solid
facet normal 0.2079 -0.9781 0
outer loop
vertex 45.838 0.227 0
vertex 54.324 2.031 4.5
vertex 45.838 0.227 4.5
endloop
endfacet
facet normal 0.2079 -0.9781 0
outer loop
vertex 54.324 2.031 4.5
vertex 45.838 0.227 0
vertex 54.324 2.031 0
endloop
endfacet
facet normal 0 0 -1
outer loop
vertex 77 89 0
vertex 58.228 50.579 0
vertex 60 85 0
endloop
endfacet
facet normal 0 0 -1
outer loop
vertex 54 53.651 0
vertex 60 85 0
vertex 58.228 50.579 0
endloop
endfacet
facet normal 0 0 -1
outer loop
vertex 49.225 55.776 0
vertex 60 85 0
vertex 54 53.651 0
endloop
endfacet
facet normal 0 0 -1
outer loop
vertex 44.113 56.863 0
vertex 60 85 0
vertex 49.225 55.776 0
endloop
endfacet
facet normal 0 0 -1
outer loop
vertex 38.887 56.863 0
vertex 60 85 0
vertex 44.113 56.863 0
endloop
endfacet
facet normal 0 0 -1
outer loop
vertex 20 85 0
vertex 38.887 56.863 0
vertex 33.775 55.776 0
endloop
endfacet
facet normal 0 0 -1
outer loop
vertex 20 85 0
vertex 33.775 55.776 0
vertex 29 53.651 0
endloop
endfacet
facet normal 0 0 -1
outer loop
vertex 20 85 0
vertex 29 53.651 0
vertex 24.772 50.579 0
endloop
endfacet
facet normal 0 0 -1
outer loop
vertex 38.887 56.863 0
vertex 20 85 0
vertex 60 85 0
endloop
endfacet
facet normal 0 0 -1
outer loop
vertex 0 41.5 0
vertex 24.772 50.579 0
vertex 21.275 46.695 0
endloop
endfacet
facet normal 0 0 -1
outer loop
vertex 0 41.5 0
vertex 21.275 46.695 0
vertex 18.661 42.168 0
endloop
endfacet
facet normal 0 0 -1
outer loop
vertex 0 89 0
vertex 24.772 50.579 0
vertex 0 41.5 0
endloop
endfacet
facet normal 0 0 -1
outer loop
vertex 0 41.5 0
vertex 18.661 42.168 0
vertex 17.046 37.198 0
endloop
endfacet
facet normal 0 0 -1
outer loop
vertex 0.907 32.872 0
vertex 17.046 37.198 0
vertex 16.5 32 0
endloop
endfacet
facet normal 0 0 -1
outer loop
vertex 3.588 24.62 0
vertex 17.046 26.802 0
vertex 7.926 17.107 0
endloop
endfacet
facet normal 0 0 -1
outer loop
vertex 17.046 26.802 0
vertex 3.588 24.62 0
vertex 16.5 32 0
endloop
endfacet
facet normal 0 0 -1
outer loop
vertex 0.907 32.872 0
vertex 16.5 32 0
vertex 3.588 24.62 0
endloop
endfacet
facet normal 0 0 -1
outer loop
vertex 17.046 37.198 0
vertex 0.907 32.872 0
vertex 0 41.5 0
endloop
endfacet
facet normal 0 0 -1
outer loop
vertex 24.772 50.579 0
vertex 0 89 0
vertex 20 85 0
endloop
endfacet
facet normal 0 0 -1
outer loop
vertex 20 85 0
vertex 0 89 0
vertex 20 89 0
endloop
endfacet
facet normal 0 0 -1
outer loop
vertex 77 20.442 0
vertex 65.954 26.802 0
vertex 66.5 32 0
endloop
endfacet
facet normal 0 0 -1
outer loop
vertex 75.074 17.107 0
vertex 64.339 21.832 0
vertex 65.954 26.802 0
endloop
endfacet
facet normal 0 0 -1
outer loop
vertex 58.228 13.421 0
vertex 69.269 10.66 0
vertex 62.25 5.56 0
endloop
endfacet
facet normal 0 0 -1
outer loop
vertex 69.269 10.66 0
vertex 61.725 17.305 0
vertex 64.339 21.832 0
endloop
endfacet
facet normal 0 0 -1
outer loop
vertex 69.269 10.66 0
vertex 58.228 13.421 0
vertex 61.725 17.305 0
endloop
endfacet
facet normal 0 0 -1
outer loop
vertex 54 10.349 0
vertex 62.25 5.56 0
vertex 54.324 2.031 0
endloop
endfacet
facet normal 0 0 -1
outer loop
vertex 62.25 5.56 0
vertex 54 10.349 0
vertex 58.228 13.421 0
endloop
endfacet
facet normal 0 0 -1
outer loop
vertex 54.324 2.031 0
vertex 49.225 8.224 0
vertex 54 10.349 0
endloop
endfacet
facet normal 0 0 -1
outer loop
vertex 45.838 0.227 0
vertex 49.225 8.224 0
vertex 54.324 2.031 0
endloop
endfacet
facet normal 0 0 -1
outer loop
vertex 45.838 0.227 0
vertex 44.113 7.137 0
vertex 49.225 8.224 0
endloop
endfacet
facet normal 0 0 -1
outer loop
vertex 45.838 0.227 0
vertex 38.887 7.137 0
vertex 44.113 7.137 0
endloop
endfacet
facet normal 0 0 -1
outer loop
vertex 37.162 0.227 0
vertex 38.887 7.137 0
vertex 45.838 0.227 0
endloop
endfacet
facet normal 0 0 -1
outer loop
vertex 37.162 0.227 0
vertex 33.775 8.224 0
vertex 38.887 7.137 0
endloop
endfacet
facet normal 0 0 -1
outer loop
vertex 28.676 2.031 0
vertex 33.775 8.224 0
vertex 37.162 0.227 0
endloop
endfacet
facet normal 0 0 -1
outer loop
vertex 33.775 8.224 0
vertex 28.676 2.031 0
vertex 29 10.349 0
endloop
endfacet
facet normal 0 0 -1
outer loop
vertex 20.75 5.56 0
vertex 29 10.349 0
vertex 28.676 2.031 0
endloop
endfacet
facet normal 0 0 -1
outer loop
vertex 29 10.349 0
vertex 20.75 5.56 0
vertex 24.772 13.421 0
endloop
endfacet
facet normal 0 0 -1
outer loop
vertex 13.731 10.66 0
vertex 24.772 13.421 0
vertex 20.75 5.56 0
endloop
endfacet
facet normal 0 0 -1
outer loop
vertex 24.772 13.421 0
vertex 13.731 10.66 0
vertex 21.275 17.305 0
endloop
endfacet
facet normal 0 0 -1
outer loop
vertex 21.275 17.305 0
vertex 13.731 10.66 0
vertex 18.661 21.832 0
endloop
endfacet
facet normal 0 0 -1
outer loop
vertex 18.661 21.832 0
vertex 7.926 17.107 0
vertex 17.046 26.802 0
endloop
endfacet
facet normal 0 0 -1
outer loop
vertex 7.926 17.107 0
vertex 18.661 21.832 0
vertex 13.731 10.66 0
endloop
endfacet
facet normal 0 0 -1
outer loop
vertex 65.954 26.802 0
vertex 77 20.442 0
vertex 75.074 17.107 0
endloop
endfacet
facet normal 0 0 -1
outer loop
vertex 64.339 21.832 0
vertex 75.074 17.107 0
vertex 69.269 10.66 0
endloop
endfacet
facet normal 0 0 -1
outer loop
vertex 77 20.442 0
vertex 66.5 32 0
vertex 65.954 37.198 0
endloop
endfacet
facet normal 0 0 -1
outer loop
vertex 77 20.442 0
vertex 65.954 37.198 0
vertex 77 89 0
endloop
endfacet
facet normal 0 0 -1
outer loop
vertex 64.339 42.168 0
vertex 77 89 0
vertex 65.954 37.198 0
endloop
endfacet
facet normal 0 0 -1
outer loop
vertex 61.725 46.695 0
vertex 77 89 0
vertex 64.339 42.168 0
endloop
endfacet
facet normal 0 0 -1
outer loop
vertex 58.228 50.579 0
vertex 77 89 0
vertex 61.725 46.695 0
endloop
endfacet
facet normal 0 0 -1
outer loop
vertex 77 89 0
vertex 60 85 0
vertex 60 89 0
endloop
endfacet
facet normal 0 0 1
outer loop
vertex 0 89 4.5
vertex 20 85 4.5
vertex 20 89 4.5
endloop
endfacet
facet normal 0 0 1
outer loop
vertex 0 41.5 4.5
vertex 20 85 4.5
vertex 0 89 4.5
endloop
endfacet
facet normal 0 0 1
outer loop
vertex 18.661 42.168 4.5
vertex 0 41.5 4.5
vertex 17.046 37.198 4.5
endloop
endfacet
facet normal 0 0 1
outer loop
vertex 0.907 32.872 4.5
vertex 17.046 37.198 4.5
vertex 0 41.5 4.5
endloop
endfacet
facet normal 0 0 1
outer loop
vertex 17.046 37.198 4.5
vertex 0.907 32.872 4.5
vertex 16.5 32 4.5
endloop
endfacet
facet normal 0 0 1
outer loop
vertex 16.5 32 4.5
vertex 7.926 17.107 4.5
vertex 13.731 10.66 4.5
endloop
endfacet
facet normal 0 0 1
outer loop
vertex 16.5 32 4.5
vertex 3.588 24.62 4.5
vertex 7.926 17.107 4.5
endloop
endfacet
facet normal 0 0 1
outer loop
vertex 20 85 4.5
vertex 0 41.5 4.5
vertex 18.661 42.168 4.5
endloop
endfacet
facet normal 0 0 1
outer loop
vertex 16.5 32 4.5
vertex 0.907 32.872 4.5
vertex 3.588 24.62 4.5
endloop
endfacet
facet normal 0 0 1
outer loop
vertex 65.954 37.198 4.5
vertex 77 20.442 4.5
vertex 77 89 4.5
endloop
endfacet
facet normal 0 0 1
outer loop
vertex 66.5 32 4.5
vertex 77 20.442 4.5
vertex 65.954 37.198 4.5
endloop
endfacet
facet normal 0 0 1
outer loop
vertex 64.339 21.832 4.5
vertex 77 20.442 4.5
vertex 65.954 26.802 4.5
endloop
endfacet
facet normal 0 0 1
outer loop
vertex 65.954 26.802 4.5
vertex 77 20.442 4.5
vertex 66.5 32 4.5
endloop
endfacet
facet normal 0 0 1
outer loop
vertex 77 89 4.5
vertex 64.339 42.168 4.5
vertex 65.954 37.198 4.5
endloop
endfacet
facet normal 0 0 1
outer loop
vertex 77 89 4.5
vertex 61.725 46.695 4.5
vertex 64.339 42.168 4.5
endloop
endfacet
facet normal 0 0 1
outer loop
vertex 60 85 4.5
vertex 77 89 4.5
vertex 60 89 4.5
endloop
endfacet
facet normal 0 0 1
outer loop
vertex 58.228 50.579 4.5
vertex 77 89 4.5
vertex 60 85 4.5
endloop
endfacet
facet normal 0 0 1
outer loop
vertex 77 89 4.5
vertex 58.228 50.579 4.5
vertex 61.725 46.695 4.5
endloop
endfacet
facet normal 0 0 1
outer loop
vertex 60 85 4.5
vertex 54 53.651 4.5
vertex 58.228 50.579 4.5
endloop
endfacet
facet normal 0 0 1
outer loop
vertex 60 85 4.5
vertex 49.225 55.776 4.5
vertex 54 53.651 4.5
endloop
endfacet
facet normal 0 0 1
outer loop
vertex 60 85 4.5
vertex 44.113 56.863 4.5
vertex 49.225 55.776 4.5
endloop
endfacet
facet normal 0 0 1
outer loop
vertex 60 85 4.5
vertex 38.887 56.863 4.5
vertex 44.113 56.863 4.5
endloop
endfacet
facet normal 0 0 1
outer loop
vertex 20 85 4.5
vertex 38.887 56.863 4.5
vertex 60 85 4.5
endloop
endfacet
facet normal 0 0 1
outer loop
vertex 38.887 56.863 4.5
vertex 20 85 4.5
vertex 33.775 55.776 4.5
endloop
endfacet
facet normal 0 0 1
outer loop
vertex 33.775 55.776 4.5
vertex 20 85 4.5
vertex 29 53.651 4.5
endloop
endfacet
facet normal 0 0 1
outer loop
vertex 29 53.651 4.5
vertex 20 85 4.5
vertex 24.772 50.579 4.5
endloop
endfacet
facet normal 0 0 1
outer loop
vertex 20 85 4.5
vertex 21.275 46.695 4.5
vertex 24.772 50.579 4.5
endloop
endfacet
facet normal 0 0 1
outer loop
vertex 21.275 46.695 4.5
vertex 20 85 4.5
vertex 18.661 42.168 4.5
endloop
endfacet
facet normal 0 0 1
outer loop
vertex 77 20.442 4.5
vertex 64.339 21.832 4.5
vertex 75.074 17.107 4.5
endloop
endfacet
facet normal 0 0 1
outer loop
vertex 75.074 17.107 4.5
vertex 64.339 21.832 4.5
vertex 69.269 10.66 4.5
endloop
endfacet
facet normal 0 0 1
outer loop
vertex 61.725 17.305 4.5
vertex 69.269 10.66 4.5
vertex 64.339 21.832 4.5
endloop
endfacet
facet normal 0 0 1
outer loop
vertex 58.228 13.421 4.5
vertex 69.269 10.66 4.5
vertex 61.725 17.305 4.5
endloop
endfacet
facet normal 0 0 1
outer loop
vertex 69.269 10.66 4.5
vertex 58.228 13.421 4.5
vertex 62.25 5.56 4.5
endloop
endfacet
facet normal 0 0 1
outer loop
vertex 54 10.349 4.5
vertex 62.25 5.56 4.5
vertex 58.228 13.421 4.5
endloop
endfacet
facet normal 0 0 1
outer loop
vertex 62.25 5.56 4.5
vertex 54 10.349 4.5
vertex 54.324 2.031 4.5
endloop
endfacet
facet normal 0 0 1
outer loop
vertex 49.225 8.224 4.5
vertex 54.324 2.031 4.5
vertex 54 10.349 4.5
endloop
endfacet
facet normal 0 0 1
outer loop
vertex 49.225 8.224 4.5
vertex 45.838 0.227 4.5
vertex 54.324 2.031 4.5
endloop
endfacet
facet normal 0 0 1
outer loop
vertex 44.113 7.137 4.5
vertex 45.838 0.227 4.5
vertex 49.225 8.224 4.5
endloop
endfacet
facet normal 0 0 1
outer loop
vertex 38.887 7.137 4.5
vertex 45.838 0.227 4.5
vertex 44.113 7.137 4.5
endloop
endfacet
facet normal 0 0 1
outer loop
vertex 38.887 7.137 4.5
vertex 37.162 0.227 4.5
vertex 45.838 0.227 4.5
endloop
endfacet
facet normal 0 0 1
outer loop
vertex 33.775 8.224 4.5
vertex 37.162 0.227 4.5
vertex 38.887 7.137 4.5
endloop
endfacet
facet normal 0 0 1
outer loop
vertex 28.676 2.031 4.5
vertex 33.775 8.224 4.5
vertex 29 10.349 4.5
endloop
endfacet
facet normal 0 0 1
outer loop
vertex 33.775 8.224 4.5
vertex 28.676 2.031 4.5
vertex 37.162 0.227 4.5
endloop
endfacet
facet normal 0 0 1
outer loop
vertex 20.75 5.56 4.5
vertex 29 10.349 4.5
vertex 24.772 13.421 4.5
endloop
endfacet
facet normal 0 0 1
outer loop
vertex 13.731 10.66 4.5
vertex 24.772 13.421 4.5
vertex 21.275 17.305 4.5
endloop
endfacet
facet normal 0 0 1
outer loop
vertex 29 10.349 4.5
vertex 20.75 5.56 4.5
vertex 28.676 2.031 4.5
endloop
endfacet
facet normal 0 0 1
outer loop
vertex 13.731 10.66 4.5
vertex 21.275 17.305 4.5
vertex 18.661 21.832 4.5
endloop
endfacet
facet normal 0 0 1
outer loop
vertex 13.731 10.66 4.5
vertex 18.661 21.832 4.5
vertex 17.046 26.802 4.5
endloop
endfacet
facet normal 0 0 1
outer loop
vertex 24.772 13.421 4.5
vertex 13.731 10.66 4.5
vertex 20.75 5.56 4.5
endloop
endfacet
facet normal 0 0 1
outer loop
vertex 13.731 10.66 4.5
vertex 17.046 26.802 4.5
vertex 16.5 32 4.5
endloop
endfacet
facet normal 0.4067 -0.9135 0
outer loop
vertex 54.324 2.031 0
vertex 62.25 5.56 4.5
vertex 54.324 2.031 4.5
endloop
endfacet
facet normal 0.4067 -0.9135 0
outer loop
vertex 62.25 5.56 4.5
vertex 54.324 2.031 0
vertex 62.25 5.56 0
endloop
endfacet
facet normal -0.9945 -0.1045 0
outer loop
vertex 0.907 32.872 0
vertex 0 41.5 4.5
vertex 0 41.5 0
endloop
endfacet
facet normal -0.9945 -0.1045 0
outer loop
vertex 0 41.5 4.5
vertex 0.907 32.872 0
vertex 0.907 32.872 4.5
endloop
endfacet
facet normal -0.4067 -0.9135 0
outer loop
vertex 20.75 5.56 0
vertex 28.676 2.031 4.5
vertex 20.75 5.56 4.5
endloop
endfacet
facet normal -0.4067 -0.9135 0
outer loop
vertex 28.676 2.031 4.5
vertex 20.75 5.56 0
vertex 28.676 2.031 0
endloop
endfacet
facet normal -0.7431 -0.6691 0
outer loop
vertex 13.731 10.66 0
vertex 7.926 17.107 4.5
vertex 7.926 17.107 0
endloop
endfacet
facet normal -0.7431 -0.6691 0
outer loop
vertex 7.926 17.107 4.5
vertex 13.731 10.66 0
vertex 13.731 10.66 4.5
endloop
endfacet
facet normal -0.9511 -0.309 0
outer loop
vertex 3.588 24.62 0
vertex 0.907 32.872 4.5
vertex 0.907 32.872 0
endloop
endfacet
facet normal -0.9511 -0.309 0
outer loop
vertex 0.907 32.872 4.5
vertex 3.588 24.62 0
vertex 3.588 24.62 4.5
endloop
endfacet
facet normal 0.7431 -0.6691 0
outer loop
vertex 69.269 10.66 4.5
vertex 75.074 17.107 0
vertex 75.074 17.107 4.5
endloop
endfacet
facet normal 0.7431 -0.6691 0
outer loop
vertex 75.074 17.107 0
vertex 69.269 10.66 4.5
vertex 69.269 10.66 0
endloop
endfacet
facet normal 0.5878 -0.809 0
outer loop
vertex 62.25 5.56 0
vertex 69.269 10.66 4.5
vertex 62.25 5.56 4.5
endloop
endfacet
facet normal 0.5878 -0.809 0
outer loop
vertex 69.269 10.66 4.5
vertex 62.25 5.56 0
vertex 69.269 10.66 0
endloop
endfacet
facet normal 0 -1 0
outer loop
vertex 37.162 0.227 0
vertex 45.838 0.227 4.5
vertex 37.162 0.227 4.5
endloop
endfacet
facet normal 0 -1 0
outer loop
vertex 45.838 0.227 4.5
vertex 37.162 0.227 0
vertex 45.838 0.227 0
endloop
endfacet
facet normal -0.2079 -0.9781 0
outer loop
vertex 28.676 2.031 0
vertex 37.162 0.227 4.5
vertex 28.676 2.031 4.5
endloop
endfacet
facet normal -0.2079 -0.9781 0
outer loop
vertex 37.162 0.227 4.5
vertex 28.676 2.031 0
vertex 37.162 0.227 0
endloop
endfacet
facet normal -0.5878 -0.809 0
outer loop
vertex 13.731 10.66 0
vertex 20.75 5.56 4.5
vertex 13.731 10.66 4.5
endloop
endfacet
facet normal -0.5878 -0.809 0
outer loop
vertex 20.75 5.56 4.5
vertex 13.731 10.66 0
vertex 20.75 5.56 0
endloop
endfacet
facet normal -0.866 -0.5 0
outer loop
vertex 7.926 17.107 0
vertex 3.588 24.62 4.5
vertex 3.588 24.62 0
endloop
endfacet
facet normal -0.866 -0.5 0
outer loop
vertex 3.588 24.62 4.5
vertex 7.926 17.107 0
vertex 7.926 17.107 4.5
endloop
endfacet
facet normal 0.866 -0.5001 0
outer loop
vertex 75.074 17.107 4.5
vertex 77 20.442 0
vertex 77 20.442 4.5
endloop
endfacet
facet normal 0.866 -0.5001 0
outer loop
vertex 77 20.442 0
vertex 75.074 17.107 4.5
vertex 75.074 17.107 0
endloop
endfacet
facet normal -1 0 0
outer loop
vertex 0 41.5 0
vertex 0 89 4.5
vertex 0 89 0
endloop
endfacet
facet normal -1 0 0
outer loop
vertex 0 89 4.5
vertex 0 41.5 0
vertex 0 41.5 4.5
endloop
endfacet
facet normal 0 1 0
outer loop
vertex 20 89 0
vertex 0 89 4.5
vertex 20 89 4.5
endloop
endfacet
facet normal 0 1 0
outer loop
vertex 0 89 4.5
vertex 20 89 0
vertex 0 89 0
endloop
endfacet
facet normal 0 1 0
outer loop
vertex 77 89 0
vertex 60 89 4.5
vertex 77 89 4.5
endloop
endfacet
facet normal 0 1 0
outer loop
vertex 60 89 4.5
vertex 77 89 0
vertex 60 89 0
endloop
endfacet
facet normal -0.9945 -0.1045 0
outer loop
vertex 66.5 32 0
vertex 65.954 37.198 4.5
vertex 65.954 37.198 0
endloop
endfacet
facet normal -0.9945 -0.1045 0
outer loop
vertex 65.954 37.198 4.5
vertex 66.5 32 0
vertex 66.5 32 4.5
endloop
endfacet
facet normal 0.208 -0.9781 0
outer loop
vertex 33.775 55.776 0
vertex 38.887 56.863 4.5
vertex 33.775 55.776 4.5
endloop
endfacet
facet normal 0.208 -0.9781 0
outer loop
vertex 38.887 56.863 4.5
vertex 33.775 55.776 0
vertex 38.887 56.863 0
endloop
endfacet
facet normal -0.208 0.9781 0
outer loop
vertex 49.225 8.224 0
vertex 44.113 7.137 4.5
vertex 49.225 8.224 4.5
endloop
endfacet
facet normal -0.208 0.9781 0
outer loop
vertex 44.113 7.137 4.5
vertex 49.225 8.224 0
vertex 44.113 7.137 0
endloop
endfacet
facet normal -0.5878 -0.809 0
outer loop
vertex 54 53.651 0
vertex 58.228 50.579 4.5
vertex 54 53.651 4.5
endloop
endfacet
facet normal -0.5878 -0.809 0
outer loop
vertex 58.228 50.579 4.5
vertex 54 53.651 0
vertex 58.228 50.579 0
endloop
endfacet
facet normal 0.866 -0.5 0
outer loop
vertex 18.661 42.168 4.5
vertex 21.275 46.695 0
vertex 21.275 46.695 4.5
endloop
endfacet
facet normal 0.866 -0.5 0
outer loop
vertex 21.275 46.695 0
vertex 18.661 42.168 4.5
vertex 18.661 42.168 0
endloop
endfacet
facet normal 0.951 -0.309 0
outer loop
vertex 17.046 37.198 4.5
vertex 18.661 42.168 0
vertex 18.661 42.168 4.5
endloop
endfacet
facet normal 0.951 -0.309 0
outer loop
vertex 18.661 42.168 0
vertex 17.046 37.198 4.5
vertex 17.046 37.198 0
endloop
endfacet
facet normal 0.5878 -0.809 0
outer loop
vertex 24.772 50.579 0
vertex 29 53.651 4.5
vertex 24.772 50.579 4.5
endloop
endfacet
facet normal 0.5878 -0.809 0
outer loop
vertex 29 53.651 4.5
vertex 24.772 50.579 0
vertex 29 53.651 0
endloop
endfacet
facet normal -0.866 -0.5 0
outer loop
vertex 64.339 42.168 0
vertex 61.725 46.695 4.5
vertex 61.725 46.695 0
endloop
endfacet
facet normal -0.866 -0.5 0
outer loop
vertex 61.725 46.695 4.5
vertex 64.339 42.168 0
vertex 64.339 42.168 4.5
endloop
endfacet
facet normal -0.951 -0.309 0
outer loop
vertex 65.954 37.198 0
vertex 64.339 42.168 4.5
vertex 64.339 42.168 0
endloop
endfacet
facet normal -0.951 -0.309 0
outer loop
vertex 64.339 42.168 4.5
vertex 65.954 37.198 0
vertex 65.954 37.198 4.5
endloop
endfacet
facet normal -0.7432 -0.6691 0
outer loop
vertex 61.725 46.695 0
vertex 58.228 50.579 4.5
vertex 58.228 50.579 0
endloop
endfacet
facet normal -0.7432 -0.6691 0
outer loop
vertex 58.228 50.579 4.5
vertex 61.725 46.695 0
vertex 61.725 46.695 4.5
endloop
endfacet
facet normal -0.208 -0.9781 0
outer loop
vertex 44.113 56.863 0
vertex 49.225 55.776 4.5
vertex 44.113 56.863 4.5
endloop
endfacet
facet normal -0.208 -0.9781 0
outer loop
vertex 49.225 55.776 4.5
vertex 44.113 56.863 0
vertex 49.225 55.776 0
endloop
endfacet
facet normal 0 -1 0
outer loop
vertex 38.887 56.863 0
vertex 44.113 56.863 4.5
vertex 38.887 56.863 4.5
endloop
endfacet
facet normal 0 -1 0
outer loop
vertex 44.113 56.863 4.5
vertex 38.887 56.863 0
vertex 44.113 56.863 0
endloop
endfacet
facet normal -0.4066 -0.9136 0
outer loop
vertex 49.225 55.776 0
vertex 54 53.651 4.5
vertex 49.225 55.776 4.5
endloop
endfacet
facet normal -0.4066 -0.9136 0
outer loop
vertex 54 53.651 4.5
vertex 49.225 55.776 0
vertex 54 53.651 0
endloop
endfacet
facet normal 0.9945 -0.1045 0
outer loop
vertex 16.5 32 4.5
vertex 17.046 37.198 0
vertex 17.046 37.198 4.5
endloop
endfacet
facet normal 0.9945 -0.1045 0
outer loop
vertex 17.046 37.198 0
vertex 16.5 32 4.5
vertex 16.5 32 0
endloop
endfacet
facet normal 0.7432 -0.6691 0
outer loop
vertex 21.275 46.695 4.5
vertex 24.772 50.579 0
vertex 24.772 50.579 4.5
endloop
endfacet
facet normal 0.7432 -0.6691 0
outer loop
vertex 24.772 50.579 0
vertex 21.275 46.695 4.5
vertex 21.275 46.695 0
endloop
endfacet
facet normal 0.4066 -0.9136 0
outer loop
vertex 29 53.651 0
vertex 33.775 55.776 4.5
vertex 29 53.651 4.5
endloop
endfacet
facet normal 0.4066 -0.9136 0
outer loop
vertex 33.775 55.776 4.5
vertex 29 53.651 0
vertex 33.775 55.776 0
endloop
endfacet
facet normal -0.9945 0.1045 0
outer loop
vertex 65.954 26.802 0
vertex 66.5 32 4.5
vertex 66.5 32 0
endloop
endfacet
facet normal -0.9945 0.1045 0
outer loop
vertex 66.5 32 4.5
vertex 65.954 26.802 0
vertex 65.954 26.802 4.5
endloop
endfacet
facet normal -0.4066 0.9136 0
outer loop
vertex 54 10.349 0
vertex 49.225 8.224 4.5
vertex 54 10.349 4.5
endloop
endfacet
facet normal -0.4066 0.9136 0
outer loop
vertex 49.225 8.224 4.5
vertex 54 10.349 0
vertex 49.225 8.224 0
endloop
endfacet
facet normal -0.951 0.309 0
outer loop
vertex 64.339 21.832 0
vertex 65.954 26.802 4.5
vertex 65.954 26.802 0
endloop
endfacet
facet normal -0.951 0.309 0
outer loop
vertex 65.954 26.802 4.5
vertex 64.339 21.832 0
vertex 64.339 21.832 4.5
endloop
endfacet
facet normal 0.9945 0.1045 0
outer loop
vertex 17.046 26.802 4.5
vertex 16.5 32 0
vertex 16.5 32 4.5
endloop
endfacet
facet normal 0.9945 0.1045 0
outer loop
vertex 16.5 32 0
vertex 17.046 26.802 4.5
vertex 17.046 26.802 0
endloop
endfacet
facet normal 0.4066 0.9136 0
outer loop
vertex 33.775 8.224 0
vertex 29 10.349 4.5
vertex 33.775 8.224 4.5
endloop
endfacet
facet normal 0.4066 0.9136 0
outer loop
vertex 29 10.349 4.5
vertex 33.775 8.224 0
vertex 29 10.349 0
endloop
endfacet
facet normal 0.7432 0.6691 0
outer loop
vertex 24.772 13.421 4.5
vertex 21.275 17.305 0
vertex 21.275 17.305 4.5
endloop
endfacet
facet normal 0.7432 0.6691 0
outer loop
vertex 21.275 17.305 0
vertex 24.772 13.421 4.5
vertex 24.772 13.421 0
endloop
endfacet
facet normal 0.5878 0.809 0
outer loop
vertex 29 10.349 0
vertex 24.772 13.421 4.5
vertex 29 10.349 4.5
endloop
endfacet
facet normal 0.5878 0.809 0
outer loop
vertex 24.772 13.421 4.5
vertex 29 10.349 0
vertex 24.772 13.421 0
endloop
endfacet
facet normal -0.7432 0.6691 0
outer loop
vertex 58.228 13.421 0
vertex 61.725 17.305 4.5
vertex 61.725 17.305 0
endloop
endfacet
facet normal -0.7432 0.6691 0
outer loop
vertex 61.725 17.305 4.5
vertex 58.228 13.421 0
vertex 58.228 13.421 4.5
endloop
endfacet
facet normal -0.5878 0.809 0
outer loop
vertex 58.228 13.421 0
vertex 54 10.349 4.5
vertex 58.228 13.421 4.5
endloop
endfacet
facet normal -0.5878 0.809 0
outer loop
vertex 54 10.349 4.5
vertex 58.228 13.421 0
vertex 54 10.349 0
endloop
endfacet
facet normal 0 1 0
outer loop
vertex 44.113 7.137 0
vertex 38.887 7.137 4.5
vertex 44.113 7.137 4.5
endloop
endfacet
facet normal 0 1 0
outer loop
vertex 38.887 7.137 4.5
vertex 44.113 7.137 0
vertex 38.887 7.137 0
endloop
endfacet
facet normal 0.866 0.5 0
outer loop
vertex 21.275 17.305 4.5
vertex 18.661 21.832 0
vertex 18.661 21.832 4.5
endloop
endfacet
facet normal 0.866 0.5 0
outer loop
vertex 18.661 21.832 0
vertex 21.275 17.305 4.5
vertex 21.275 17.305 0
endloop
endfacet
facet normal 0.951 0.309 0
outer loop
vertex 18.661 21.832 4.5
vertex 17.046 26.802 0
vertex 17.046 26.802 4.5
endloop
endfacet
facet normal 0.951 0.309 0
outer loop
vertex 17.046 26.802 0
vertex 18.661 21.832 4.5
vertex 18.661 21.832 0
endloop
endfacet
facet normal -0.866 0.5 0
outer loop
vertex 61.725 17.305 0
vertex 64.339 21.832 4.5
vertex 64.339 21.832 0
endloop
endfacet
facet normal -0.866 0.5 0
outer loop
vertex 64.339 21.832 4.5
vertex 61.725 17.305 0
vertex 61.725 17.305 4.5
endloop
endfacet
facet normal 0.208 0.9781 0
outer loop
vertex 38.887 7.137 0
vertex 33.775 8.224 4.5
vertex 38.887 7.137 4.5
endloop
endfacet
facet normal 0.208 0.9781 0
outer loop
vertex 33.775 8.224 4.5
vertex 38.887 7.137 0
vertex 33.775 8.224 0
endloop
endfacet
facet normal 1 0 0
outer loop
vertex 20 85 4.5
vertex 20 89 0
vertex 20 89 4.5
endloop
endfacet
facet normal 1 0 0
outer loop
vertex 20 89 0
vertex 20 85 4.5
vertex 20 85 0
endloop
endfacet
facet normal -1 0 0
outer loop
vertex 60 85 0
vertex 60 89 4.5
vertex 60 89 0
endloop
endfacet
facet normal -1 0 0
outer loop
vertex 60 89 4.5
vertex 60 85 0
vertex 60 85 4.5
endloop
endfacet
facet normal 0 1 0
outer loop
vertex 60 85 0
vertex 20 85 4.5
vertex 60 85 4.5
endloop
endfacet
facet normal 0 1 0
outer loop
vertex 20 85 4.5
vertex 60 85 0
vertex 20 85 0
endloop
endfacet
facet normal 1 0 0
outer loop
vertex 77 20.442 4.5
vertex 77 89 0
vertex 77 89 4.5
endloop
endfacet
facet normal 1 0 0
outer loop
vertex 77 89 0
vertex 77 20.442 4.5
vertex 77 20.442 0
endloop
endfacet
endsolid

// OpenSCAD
thickness = 4.5;
difference() {    
    difference () {
        difference() {
            union() {
                translate ([41.5, 41.5,0]) cylinder(thickness, 41.5, 41.5);
                translate ([0, 41.5, 0]) cube ([83, 47.5, thickness]);
            }
        translate ([41.5, 32,0]) cylinder(thickness, 25, 25);
        }
        translate([20, 85, 0]) cube([40,20,thickness]);
    }
    translate ([77,0,0]) cube([10,100,thickness]);
}
